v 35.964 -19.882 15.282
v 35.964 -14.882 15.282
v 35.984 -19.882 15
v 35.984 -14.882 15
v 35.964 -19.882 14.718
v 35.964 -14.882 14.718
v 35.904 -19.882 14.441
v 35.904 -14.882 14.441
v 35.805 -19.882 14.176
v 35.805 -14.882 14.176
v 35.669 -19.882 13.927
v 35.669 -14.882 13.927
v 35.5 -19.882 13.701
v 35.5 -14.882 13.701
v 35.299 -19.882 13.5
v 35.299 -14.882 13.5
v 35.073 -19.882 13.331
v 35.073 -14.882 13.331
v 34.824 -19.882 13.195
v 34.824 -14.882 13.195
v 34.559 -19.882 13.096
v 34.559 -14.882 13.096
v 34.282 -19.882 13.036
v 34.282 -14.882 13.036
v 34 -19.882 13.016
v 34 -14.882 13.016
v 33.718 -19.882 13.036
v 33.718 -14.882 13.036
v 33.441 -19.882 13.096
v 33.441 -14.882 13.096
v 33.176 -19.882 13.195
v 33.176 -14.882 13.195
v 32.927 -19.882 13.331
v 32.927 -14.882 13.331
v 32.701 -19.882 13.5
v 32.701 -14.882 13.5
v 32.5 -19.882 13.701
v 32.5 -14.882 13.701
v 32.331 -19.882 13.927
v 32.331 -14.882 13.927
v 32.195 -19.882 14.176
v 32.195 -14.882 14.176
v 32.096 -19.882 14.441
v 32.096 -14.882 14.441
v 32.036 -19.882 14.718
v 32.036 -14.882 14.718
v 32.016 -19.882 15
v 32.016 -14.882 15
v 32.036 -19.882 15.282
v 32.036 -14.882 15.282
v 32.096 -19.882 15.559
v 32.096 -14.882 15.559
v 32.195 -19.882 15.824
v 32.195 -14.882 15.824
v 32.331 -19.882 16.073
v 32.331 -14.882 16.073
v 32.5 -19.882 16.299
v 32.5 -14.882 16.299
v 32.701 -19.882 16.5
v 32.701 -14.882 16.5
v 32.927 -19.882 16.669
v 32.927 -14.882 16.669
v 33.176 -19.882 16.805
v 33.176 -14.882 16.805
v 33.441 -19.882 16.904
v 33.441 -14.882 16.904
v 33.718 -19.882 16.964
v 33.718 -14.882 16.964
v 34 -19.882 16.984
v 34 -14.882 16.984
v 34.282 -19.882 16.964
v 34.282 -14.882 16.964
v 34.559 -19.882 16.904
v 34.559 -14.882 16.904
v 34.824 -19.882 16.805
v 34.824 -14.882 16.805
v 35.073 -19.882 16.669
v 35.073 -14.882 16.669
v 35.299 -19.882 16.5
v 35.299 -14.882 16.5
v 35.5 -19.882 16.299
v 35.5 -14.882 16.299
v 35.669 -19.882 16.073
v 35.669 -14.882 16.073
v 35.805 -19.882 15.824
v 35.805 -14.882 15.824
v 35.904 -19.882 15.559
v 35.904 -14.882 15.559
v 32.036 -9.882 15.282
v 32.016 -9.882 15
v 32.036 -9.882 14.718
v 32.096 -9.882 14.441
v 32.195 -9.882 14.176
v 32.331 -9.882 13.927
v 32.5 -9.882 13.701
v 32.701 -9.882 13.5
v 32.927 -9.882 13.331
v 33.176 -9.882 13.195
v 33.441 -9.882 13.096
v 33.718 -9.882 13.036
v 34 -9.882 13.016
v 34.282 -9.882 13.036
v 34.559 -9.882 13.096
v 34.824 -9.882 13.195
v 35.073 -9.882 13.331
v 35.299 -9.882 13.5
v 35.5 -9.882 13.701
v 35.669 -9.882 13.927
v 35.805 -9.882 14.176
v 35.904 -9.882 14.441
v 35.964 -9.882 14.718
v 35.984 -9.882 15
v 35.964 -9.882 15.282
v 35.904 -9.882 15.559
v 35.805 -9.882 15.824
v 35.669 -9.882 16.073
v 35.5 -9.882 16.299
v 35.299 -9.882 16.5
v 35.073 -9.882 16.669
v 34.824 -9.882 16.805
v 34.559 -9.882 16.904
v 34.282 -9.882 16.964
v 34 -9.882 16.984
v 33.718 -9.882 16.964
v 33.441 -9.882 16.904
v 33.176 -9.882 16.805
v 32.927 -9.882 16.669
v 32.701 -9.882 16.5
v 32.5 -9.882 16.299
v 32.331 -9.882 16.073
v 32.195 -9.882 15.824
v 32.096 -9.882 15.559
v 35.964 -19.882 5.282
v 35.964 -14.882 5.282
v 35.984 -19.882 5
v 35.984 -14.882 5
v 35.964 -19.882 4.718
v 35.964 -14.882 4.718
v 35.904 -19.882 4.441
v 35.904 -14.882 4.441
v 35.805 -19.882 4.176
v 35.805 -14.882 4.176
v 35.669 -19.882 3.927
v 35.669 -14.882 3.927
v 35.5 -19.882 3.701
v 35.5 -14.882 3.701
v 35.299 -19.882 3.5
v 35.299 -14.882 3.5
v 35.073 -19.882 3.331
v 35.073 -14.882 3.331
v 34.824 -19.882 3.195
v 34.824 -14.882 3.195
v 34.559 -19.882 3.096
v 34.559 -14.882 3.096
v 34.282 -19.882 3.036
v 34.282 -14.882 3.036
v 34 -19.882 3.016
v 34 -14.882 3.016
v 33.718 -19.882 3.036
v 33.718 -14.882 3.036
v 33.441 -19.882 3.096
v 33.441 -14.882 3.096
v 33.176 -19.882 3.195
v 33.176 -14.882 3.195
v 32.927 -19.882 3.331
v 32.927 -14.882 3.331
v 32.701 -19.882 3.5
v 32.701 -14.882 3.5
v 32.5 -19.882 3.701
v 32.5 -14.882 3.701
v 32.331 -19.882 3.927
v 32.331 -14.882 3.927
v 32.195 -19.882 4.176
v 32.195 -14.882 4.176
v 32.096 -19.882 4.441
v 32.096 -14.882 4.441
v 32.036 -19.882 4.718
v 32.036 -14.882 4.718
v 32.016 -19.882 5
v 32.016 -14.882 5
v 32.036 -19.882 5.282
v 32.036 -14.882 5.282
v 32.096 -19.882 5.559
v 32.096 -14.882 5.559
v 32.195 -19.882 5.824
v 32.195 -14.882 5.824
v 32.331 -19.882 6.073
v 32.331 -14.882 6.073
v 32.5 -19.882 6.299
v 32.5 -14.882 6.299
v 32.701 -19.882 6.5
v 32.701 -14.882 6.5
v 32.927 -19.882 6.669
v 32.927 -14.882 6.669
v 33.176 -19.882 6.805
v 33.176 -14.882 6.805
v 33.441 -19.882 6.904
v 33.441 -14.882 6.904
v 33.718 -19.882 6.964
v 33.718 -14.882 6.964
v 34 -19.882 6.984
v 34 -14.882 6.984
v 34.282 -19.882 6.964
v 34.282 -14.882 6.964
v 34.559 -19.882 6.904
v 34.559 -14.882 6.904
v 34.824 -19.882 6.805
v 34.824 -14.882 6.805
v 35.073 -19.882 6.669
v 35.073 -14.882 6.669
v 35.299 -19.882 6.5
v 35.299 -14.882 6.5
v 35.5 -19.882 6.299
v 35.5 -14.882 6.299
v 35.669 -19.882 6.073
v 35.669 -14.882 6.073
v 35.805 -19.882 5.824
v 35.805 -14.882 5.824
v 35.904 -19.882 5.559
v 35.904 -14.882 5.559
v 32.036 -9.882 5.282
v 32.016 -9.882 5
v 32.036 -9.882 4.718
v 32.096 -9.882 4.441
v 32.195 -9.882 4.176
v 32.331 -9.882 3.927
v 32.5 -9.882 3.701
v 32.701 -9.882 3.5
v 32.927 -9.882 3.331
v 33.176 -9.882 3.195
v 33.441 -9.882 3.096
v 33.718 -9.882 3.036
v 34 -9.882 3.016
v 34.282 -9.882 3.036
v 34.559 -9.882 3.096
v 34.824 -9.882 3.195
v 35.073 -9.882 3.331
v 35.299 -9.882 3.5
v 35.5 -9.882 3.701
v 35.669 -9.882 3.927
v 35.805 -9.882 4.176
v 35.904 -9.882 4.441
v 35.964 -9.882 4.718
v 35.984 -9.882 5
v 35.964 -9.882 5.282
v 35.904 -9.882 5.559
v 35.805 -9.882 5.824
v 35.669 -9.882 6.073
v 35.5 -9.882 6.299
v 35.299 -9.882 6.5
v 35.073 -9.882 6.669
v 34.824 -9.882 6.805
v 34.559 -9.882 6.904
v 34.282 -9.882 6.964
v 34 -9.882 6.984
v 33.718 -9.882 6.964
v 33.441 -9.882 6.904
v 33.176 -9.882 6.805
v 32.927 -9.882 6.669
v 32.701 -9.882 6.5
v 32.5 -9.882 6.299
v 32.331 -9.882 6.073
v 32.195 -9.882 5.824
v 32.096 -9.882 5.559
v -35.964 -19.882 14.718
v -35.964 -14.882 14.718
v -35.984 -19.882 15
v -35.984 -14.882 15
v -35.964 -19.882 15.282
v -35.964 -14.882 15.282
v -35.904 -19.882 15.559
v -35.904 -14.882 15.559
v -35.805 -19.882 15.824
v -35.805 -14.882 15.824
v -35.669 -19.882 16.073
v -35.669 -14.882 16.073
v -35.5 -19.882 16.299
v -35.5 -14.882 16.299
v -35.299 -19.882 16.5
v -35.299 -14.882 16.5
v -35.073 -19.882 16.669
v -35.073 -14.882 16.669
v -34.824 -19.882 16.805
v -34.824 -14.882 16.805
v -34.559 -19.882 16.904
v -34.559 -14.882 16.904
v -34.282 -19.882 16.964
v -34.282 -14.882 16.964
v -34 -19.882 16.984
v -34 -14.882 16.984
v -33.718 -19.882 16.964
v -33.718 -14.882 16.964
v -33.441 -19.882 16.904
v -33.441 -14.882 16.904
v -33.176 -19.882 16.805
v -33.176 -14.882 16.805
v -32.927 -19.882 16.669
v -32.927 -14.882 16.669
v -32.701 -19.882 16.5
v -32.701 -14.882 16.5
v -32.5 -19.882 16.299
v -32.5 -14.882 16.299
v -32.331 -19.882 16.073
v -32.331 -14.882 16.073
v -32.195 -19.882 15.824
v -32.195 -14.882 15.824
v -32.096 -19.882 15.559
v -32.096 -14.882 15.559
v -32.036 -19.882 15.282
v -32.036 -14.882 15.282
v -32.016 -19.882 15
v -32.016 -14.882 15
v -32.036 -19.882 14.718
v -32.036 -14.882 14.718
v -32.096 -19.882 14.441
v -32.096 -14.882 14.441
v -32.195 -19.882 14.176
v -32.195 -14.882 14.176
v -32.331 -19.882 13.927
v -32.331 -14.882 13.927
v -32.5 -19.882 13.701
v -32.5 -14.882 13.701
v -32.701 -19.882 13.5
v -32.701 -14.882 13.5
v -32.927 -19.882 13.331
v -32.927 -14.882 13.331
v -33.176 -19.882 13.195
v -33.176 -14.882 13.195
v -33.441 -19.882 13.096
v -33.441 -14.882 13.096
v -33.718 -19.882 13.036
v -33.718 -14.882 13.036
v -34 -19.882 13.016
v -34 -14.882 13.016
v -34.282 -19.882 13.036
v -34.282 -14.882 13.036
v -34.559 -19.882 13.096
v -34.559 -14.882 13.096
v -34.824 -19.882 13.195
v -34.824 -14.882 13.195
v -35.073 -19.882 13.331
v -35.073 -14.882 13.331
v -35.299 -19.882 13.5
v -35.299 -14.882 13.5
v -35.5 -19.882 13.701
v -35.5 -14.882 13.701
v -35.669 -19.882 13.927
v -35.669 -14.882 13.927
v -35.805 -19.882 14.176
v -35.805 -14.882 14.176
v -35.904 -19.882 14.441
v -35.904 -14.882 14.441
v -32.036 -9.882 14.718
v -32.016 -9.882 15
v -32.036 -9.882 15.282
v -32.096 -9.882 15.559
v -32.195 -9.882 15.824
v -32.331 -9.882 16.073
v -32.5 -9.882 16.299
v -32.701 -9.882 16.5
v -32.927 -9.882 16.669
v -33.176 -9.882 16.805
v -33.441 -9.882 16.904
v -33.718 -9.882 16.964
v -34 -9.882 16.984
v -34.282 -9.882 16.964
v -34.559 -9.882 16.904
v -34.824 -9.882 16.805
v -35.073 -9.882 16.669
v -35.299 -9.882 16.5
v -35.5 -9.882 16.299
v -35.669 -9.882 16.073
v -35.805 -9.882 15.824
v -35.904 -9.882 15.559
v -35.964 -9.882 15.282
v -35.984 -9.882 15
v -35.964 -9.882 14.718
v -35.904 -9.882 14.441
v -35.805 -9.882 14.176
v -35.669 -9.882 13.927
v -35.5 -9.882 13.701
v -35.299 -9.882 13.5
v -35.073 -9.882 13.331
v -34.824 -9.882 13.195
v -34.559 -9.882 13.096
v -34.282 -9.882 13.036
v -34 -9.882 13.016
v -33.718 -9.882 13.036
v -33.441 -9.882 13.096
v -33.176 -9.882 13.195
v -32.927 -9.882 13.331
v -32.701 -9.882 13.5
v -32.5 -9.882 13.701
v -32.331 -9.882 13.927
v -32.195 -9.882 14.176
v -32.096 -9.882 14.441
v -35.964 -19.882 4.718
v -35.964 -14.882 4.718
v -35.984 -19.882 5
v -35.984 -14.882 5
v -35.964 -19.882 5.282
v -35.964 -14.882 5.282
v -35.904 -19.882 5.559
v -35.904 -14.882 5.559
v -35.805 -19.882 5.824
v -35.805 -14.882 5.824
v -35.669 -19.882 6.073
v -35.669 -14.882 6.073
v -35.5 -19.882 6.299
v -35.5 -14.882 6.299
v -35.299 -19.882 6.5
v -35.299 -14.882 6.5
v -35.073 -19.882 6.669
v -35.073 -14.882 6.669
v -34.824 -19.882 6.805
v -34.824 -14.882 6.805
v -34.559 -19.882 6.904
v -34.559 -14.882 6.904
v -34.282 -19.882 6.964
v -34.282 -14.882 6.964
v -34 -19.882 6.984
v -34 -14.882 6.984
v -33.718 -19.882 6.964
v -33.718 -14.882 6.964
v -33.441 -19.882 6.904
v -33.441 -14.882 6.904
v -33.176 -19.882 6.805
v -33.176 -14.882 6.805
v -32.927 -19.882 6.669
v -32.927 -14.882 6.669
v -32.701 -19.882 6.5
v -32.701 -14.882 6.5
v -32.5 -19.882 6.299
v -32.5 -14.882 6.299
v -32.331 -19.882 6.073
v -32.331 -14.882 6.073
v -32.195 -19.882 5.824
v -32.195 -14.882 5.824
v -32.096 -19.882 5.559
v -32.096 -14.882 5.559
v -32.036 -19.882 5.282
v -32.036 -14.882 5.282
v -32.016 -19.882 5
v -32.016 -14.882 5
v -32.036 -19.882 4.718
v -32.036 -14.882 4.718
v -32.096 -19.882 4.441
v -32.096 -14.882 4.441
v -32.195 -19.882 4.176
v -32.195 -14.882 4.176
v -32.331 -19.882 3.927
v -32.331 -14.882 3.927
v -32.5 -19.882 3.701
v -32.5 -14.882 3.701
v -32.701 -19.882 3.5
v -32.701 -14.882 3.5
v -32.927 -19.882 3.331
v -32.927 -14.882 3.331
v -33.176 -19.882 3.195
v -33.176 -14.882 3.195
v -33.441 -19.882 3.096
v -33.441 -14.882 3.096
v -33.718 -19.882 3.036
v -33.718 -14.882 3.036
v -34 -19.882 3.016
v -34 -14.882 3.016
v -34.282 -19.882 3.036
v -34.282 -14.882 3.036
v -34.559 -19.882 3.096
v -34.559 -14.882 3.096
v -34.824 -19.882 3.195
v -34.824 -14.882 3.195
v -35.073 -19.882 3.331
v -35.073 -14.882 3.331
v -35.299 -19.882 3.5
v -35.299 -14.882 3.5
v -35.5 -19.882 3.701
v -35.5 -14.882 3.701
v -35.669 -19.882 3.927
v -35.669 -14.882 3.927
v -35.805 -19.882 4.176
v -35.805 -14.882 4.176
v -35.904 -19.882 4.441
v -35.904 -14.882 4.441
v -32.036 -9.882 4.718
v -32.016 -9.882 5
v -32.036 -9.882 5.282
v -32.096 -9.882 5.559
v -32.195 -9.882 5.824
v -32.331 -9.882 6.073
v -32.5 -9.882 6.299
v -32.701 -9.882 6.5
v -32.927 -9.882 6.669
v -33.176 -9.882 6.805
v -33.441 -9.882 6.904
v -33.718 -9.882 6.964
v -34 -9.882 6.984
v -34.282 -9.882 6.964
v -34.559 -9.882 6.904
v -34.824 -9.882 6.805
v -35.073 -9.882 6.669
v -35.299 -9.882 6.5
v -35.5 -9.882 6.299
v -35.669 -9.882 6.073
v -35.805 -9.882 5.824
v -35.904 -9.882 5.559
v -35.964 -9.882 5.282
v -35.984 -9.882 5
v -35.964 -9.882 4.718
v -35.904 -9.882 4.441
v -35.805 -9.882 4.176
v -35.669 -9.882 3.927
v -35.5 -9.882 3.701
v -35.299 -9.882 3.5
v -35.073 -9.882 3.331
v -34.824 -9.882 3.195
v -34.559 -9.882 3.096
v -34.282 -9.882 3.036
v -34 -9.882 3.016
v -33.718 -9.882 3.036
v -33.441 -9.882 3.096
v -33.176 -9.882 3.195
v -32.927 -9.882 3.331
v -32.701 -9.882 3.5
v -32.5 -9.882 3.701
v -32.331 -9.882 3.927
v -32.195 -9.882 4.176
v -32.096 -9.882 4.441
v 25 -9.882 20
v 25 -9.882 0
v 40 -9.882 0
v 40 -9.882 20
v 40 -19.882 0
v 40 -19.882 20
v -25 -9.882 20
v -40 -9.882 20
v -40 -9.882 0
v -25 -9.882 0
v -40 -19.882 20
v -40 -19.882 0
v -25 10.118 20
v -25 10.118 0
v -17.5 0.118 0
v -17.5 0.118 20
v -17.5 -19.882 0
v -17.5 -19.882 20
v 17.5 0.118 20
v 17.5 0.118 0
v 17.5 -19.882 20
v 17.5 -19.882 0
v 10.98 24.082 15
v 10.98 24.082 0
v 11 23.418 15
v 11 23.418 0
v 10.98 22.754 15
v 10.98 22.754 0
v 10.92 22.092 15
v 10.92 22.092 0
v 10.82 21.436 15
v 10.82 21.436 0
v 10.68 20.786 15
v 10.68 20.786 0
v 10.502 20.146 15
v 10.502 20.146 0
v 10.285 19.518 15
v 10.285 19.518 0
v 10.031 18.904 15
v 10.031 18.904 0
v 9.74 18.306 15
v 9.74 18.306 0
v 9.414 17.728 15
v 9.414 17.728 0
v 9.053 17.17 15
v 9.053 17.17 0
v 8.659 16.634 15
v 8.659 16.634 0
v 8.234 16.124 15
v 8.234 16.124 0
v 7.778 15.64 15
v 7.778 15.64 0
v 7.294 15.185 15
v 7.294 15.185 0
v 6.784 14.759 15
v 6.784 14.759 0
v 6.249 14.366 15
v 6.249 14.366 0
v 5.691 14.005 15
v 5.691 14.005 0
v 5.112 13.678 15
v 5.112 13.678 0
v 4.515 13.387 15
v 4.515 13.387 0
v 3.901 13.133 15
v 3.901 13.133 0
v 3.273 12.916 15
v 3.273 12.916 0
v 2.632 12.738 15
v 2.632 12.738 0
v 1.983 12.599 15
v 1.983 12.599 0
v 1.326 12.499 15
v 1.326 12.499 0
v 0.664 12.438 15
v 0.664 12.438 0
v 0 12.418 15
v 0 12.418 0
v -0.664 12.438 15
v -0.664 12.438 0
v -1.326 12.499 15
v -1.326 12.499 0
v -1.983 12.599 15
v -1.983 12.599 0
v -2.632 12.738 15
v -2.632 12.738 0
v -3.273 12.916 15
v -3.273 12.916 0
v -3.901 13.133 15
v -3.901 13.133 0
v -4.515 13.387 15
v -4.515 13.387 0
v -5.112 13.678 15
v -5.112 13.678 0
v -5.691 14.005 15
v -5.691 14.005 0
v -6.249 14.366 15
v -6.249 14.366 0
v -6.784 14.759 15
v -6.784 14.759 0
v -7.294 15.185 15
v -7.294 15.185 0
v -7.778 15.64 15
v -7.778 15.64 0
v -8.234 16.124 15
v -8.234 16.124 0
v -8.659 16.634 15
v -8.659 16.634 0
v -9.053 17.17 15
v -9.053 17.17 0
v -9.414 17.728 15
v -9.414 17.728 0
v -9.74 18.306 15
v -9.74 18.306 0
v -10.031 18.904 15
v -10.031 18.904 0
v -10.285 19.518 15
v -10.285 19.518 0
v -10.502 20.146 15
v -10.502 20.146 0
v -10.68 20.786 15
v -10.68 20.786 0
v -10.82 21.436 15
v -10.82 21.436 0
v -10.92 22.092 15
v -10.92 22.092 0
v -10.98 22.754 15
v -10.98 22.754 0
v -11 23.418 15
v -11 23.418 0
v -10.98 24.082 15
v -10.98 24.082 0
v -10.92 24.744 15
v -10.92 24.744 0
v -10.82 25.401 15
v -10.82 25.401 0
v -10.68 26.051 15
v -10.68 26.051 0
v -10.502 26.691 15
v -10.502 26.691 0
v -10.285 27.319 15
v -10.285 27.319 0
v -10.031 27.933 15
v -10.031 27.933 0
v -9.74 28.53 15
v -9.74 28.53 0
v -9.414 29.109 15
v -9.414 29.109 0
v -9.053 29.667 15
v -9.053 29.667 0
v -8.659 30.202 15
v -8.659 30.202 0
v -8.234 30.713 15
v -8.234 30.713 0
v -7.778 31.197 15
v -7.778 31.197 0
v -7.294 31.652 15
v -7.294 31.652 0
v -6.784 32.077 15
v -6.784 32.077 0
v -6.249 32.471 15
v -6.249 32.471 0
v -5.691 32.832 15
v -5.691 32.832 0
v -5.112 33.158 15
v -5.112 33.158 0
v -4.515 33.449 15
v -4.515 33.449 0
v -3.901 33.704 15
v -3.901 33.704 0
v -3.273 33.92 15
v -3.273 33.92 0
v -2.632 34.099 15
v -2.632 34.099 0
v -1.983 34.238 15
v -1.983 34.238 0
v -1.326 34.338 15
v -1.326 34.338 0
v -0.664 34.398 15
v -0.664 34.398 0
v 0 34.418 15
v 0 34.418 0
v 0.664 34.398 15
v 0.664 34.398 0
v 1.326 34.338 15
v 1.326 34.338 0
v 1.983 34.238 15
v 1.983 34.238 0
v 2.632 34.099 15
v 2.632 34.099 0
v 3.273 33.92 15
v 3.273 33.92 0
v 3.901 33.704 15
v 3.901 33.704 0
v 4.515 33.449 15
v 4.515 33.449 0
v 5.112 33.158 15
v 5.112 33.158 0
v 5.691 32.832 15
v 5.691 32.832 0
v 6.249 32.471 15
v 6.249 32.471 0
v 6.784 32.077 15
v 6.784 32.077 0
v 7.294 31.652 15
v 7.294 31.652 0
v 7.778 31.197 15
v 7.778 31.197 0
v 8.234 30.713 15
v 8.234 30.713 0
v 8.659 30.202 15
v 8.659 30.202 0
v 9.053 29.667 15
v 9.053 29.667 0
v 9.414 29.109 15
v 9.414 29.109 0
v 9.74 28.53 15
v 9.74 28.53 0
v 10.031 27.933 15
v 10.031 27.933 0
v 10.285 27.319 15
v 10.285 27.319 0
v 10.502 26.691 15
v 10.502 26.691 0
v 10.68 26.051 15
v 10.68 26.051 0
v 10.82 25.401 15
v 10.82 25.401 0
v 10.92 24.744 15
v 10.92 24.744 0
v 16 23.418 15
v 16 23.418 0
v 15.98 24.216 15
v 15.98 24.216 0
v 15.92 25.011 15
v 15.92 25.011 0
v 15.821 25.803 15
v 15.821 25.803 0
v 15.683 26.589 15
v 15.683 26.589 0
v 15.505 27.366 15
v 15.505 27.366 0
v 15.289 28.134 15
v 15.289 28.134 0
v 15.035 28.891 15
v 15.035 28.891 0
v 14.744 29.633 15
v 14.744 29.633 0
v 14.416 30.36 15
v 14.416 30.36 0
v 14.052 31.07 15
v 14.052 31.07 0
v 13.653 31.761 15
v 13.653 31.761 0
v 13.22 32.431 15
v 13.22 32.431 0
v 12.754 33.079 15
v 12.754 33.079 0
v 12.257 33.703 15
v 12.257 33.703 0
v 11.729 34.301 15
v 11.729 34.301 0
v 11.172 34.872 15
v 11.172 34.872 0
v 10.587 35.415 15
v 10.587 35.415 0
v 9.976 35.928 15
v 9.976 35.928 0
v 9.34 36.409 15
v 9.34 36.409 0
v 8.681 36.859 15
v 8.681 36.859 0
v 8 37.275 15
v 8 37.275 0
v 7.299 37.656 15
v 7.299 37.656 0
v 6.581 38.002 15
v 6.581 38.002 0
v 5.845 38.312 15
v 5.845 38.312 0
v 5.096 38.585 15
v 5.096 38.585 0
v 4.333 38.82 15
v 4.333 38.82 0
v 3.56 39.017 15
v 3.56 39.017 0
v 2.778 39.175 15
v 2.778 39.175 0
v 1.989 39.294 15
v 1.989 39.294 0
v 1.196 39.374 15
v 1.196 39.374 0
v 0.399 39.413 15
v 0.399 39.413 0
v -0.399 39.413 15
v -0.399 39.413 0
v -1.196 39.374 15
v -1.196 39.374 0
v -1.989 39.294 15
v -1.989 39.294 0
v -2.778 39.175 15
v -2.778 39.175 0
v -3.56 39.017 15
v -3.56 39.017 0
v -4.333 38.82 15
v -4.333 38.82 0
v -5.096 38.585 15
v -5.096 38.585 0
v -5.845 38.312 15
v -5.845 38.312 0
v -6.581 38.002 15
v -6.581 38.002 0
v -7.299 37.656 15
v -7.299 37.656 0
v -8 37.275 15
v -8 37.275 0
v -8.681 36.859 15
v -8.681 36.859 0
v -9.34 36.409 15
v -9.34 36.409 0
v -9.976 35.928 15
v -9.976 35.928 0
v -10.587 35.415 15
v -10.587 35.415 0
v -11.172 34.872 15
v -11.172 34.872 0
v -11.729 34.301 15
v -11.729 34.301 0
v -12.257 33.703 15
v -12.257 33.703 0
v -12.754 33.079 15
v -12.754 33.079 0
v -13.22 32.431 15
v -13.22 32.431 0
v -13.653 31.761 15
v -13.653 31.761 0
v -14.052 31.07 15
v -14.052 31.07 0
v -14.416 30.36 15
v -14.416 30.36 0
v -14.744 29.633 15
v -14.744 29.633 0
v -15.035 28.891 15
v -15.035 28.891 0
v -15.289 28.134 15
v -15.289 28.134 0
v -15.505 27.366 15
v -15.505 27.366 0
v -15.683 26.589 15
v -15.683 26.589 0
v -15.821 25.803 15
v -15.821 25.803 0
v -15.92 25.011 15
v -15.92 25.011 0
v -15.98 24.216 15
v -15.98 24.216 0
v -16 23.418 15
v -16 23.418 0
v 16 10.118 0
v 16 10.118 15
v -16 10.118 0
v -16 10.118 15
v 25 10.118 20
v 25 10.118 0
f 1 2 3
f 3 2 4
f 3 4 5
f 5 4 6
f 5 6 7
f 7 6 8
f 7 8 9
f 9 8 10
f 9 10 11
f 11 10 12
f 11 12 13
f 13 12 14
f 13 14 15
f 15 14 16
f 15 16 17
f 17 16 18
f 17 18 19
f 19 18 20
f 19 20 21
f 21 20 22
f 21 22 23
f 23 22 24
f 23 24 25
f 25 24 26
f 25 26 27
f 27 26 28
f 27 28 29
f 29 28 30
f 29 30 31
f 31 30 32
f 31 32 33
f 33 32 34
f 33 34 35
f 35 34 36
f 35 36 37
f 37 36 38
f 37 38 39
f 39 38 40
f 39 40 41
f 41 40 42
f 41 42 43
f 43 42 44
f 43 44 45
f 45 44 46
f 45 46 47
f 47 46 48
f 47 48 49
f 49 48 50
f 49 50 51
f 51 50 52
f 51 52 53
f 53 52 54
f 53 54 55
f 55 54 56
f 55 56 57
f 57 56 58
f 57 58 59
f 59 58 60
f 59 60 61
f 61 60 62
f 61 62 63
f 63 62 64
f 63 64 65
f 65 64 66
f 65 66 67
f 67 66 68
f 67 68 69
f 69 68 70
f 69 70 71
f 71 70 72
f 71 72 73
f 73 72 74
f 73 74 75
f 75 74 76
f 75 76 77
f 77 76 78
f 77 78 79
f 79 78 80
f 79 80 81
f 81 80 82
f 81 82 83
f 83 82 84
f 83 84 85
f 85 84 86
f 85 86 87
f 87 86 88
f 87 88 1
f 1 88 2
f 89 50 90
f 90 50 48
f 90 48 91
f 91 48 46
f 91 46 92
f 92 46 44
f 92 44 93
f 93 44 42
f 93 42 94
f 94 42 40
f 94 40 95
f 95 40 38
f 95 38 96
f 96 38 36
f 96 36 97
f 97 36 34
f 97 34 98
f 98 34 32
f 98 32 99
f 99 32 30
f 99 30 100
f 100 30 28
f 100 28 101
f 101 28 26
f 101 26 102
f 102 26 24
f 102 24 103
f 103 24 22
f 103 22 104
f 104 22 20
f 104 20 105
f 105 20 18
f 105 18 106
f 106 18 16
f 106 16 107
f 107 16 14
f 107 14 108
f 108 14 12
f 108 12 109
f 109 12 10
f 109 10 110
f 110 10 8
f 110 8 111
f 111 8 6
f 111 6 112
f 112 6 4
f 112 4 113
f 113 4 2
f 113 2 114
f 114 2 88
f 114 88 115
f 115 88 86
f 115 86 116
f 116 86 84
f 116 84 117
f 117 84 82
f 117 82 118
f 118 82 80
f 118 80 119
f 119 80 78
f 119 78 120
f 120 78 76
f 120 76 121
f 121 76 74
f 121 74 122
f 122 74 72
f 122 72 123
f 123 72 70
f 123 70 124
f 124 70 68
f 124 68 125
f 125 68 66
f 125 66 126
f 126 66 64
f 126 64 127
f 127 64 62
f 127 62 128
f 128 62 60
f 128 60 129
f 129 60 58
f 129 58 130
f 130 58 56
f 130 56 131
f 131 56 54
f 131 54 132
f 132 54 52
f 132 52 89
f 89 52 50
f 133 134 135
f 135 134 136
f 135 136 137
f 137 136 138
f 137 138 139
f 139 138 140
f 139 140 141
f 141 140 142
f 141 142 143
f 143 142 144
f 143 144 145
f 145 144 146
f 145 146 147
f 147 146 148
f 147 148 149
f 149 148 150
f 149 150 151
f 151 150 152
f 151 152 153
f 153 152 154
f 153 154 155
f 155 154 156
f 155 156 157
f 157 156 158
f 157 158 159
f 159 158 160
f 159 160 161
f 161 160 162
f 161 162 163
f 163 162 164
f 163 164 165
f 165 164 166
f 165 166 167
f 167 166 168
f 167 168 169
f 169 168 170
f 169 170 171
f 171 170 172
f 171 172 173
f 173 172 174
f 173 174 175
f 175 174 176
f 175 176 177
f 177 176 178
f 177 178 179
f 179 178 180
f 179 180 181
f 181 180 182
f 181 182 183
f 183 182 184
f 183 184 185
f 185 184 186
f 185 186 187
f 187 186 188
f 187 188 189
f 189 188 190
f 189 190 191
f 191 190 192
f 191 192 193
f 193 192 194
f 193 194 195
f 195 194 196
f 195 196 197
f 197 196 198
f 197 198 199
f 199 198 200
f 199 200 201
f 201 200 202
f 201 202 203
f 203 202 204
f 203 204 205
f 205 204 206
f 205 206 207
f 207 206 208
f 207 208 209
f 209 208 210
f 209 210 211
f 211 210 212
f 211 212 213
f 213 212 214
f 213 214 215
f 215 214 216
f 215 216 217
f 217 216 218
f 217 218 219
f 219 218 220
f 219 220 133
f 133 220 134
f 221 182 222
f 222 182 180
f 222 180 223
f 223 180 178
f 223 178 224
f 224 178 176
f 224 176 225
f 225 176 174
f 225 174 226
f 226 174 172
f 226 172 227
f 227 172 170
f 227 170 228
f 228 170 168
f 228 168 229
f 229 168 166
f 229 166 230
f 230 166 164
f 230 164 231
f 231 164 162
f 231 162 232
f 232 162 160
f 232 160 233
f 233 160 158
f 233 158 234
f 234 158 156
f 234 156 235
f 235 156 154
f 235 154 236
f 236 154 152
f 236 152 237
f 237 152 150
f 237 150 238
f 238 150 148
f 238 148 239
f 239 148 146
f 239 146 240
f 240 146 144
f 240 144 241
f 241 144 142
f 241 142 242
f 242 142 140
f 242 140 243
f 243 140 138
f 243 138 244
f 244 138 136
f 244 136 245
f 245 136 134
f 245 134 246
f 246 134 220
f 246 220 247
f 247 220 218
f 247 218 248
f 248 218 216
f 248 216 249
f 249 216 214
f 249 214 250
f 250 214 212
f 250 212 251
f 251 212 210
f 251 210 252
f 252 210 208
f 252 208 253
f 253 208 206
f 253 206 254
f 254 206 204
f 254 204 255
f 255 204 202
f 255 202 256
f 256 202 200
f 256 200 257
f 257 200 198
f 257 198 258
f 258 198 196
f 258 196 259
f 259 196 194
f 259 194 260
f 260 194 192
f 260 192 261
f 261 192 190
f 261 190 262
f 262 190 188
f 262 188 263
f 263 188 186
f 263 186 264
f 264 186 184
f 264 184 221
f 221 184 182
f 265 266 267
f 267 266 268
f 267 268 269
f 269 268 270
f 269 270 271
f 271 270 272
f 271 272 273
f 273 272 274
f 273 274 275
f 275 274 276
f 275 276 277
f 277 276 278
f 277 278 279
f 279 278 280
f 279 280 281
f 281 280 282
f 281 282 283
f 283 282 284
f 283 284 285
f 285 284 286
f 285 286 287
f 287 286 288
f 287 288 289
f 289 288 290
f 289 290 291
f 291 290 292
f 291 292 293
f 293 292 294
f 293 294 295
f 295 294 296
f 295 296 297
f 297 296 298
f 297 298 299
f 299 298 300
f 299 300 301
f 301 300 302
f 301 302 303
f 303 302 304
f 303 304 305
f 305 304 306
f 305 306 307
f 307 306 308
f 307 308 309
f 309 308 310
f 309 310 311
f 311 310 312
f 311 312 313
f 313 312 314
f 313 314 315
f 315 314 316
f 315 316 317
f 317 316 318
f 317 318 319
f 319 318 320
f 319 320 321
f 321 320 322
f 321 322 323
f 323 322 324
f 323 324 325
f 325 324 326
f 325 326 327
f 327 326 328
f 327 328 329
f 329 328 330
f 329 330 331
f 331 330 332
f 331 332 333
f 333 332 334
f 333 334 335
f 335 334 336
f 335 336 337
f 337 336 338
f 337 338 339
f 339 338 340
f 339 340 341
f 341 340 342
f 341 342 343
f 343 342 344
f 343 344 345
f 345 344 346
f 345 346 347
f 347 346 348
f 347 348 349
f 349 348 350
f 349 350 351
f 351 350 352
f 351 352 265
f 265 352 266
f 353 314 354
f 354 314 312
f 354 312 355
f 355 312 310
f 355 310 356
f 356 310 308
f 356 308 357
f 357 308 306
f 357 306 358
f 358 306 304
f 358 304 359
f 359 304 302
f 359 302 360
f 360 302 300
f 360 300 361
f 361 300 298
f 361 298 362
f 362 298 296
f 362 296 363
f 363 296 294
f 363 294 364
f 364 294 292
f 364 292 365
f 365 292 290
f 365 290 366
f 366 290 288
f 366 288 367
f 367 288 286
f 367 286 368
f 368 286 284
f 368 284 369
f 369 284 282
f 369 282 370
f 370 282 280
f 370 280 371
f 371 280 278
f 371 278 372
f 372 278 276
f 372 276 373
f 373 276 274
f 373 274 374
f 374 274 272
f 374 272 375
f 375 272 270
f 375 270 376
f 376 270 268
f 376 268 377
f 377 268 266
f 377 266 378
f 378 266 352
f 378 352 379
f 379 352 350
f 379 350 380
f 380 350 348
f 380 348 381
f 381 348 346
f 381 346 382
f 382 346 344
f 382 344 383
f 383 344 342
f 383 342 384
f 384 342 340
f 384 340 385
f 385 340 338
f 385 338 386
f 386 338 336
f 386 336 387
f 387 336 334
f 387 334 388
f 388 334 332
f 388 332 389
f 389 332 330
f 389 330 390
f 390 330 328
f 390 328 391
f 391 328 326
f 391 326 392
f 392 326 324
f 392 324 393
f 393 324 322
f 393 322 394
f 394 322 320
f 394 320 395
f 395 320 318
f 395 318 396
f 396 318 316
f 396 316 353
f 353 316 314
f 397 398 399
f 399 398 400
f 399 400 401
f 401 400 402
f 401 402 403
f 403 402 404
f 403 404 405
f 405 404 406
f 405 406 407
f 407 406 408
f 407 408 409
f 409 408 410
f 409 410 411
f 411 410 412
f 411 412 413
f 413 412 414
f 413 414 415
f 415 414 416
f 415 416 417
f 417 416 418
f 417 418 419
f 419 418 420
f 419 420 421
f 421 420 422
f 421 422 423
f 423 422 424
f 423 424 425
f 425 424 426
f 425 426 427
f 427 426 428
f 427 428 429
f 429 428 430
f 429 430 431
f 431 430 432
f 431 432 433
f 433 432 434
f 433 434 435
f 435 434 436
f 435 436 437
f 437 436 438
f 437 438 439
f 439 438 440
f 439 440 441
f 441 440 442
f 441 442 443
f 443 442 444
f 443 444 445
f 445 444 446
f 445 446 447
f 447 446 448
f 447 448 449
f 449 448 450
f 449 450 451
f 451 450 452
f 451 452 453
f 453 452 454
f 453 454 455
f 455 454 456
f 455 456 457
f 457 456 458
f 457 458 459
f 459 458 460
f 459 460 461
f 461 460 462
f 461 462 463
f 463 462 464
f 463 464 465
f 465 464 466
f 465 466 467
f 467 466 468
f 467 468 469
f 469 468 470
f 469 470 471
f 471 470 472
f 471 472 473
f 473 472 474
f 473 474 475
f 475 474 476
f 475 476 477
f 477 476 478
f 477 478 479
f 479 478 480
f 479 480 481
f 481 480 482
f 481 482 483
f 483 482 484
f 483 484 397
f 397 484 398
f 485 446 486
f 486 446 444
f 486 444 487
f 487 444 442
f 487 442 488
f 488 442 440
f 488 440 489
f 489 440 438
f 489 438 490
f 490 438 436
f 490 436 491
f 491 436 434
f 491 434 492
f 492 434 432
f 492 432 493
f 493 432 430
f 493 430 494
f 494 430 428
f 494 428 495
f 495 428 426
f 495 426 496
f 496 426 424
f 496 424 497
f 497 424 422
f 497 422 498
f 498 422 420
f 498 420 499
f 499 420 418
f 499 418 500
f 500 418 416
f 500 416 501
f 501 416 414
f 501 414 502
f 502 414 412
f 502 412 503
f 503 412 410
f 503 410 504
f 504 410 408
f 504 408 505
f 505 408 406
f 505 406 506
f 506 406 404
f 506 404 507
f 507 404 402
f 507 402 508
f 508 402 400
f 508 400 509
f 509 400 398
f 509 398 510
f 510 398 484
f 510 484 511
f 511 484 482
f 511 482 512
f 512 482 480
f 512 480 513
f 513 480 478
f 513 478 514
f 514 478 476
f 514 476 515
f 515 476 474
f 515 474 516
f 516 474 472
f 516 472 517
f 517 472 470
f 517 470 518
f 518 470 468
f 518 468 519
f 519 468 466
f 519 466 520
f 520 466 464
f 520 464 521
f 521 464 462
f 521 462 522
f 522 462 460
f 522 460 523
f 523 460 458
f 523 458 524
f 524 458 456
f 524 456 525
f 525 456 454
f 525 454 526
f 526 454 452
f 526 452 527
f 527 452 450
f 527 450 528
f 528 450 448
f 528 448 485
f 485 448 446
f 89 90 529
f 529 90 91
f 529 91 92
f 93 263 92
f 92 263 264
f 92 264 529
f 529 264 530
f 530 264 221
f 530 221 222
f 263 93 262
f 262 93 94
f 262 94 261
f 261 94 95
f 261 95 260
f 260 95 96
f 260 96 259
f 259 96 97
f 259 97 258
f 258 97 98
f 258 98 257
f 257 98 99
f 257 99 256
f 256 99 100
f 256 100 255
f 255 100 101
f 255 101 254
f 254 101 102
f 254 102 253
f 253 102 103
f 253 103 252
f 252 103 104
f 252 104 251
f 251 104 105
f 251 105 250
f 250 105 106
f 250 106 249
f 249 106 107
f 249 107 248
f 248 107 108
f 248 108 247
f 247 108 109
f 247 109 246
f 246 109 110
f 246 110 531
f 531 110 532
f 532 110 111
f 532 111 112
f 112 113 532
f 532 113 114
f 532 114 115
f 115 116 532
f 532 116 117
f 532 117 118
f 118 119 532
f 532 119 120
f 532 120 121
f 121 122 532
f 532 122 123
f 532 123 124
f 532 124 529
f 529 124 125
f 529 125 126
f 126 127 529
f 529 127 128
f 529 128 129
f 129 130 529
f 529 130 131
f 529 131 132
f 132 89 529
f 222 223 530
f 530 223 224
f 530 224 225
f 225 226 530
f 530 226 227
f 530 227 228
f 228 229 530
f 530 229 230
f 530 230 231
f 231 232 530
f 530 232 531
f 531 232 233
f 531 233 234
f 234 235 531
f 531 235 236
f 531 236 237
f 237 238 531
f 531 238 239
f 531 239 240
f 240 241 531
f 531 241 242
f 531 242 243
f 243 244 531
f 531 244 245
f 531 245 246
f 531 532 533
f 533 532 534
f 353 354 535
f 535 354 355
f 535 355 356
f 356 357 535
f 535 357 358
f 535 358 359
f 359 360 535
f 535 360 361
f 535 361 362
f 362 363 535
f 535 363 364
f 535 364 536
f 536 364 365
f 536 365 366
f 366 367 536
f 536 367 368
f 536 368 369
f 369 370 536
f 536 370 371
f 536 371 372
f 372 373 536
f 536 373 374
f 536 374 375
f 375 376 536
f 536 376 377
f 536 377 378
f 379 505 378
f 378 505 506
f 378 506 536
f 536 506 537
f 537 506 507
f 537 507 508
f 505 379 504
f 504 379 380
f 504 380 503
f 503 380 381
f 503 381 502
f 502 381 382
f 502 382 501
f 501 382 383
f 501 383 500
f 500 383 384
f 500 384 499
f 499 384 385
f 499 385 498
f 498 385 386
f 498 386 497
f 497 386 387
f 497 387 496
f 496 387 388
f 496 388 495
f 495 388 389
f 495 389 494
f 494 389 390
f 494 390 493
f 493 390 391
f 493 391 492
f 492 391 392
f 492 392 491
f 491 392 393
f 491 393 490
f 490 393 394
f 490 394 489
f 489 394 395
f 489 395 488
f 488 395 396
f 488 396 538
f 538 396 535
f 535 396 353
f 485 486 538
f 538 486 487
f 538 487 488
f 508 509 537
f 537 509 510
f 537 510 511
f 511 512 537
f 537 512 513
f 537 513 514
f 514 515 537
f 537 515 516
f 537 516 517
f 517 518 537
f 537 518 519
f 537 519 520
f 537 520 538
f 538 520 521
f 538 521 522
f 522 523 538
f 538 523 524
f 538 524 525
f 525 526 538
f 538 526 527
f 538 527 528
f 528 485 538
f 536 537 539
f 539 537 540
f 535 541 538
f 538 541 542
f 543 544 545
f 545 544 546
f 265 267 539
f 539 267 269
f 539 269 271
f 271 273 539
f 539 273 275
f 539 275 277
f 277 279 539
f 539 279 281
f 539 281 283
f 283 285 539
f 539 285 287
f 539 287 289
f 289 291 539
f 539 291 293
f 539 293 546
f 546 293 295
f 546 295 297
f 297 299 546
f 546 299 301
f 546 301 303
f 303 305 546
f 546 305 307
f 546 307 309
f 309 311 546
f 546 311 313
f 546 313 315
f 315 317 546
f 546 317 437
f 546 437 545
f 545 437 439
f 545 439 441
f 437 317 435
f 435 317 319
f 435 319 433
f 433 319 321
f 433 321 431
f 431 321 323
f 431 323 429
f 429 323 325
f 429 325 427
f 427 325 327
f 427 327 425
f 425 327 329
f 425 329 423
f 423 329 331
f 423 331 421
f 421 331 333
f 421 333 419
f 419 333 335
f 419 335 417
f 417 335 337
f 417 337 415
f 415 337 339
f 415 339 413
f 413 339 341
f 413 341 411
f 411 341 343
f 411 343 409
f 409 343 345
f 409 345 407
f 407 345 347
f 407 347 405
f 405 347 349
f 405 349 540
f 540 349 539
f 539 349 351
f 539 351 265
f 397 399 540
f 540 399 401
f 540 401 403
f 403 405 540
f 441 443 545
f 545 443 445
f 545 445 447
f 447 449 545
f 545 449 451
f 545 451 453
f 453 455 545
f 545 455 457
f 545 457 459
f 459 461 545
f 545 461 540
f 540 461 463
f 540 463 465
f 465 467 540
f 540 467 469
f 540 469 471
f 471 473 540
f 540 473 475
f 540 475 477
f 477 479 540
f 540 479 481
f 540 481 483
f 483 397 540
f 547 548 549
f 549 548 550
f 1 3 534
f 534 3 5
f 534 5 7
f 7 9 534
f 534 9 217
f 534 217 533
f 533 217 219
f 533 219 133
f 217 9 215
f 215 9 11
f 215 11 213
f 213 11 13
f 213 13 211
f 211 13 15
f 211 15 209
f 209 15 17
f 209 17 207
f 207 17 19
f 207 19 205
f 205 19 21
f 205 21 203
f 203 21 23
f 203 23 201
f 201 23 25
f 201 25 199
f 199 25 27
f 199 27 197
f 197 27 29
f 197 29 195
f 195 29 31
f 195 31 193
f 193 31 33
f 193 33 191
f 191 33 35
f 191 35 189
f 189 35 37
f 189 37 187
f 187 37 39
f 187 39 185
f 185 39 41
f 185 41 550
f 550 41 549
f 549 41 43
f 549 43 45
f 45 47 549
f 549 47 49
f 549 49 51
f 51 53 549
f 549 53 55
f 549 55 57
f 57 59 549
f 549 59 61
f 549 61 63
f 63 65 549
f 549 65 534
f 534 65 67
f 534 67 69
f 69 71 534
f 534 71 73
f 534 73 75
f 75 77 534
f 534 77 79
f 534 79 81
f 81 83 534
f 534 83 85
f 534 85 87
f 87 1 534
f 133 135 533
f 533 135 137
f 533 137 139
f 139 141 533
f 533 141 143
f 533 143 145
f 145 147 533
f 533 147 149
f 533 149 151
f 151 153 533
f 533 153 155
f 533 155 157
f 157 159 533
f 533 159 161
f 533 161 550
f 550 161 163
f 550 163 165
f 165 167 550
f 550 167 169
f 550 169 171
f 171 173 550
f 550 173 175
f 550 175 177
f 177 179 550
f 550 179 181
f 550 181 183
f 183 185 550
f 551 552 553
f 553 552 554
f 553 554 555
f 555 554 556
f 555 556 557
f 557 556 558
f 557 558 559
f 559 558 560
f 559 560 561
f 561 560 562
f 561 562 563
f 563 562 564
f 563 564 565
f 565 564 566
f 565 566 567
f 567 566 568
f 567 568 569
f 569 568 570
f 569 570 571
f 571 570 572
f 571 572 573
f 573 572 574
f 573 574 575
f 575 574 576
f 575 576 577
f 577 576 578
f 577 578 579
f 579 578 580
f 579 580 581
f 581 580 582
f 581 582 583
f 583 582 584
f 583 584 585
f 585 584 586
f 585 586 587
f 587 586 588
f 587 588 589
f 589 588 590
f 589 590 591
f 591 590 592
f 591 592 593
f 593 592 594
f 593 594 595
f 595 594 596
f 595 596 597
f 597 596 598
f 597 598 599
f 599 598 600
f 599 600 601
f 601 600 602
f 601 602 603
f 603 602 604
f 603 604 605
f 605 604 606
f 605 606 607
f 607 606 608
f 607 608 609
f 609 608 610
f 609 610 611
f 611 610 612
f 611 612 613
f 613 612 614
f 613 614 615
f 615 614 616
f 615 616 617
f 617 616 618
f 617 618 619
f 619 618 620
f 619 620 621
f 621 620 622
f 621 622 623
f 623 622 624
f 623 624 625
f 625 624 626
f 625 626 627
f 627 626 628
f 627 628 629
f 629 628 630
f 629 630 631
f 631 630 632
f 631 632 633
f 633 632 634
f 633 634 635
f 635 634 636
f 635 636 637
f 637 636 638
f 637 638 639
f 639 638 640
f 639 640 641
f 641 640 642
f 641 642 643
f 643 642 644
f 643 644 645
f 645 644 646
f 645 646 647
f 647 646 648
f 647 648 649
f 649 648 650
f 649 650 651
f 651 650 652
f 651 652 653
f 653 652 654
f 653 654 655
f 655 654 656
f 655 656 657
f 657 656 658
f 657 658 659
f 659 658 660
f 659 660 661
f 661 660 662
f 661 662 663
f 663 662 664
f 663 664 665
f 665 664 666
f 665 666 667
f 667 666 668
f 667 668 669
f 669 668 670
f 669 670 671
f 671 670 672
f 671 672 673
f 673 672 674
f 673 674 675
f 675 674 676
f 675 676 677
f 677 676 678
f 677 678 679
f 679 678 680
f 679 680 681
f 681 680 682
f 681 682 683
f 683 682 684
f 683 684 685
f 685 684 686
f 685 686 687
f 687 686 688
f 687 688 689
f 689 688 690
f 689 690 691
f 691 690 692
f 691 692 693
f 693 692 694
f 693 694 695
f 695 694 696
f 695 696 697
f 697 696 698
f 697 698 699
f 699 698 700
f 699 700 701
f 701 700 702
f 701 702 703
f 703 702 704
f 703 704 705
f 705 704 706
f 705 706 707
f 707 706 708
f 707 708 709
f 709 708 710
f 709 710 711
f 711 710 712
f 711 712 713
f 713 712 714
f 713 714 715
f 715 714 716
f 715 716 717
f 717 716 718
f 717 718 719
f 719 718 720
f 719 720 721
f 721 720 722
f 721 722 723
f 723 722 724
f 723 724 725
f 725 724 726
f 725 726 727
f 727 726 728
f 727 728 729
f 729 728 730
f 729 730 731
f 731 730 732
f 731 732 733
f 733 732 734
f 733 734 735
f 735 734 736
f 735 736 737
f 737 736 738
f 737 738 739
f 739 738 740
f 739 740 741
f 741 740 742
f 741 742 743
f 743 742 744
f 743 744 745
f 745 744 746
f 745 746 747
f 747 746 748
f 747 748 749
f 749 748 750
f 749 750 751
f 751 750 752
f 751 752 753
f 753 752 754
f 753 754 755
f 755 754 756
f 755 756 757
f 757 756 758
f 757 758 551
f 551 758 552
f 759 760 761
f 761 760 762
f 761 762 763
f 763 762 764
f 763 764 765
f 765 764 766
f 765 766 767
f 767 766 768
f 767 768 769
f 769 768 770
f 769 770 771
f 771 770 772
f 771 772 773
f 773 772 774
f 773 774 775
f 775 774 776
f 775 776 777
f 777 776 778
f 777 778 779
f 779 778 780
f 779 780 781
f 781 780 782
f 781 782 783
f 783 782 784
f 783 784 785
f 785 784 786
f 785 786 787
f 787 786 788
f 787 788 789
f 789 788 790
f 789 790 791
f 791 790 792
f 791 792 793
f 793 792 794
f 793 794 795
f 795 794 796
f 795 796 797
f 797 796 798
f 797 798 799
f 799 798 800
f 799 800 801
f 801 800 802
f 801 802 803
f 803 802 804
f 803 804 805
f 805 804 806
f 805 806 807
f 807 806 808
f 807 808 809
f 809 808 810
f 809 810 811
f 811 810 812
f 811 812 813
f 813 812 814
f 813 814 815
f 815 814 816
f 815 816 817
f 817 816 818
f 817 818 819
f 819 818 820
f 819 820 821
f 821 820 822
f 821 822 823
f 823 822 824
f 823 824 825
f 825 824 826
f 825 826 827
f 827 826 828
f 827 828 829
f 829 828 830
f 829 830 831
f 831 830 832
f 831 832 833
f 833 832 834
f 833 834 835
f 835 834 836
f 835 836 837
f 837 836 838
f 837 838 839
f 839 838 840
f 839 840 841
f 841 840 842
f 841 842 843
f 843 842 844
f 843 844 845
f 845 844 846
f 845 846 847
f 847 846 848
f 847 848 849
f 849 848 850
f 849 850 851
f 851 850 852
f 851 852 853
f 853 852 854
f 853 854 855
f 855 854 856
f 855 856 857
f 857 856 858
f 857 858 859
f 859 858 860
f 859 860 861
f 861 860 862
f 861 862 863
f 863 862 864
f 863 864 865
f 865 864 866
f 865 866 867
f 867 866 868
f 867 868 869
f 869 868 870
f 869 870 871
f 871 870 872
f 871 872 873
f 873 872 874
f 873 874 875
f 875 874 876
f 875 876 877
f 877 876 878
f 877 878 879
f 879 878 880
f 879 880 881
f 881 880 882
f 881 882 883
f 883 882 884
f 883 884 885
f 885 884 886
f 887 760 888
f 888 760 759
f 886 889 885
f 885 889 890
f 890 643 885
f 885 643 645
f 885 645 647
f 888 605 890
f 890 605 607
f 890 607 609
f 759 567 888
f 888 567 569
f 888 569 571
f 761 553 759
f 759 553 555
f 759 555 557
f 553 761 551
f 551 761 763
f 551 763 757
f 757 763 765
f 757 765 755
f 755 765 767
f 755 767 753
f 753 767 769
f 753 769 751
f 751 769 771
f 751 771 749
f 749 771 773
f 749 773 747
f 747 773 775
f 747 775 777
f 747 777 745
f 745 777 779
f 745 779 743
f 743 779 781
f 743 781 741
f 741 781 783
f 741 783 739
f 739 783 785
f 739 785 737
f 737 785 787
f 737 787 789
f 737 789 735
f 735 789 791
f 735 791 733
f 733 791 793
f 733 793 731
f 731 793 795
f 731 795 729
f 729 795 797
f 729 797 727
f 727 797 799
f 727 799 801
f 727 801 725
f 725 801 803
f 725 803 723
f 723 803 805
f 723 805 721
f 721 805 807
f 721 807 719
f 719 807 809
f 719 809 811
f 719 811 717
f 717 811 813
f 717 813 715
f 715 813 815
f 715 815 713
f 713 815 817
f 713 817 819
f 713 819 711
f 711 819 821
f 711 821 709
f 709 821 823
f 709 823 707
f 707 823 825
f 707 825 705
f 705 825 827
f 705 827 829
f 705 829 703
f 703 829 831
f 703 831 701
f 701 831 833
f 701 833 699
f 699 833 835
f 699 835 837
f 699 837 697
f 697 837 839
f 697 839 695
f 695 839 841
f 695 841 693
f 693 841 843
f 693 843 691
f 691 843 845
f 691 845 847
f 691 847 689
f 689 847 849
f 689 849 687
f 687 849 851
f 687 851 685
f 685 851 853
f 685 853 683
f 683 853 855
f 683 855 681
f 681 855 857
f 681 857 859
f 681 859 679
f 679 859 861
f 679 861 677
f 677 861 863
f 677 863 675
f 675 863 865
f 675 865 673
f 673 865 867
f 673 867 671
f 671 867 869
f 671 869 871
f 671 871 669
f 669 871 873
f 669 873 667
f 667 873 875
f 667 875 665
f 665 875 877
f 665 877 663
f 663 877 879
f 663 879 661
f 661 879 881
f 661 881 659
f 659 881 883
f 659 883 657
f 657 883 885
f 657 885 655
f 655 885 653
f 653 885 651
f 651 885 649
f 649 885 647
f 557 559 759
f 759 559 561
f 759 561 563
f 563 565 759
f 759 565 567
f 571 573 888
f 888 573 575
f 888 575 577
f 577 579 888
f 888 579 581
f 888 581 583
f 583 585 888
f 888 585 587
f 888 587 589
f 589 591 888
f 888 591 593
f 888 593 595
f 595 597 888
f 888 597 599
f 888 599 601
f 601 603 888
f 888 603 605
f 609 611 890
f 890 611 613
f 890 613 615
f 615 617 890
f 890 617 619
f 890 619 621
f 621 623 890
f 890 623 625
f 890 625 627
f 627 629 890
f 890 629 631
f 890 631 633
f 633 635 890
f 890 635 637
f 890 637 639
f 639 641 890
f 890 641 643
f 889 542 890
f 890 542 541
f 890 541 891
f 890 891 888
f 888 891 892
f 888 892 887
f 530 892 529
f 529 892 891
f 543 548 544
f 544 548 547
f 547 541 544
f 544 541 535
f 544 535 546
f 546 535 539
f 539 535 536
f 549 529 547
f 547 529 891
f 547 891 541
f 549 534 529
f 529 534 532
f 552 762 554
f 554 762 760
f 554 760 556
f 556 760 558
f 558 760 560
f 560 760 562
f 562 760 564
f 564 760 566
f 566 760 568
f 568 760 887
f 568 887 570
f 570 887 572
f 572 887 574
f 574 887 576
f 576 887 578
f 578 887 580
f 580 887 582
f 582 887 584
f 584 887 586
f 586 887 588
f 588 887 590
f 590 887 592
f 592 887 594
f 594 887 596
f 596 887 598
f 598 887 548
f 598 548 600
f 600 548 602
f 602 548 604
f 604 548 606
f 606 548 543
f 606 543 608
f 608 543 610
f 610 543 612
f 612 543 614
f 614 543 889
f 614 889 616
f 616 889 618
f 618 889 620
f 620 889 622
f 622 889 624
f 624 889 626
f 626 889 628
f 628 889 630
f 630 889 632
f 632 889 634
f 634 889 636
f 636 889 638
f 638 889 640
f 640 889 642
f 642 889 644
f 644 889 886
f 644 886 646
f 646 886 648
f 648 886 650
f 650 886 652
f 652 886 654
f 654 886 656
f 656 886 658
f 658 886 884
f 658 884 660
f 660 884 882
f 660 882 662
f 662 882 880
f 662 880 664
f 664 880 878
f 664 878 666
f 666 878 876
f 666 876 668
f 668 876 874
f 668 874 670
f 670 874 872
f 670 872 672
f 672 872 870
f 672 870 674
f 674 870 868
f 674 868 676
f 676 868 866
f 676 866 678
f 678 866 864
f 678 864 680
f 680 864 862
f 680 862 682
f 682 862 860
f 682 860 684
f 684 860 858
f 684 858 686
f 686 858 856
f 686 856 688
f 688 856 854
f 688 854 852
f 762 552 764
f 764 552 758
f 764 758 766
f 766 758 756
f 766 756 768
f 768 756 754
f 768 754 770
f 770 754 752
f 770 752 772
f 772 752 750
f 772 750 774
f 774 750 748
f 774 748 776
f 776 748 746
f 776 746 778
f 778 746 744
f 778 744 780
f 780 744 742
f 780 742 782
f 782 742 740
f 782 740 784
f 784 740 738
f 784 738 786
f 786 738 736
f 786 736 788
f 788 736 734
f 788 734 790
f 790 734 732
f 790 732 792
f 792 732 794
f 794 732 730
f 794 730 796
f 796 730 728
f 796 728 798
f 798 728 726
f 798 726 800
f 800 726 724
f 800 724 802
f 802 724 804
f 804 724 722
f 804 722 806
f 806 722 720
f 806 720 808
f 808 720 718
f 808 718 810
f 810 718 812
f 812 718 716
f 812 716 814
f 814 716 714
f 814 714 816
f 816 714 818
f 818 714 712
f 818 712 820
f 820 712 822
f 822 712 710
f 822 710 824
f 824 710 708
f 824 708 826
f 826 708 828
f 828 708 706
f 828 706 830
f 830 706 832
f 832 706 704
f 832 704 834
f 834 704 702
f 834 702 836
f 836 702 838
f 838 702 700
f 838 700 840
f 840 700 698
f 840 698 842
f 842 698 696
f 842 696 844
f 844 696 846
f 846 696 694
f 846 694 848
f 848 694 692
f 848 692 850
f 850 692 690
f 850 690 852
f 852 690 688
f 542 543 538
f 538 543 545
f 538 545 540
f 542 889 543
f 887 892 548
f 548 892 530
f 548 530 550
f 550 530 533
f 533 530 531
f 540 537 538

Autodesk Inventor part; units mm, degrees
ref_plane "YZ Plane" through (0, 0, 0) normal (1, 0, 0) x (0, 1, 0)
ref_plane "XZ Plane" through (0, 0, 0) normal (0, 1, 0) x (-1, 0, 0)
ref_plane "XY Plane" through (0, 0, 0) normal (0, 0, 1) x (1, 0, 0)
sketch "Boceto1" plane through (0, 0, 0) normal (0, 0, 1) x (1, 0, 0)
  circle A0 centre (0, 23.4183) radius 11
  circle A1 centre (0, 23.4183) radius 16
  line L0 (-16, 23.4183) -> (-16, -2.7)
  line L1 (16, 23.4183) -> (16, -2.7)
  line L2 (-25, 0.1183) -> (25, 0.1183)
  line L3 (25, 0.1183) -> (25, 10.1183)
  line L4 (25, 10.1183) -> (-25, 10.1183)
  line L5 (-25, 10.1183) -> (-25, 0.1183)
  point P0 (0, 0)
  point P1 (0, 0.1183)
  point P2 (-16, 10.1183)
  point P3 (16, 10.1183)
  dimension "d0" = 22
  dimension "d1" = 32
  dimension "d2" = 50
  dimension "d11" = 10
  dimension "d23" = 23.3
extrude "Extrusión1" add sketch "Boceto1" along normal blind 20 contours L4 L1 L2 L0 A1 | A1 L4 | L4 L3 L2 L1 | L0 L2 L5 L4 picked at (-1.8471, 9.5484)
extrude "Extrusión2" add sketch "Boceto1" along normal blind 15 contours A1 L4 | L1 L4 A1 | A1 L4 L0 picked at (0.442, 10.9117)
sketch "Boceto3" plane through (-25, 0.1183, 0) normal (0, -1, 0) x (1, 0, 0)
  line L0 (0, 20) -> (50, 20) projected
  line L1 (7.5, 20) -> (42.5, 20)
  line L2 (42.5, 20) -> (42.5, 0)
  line L3 (42.5, 0) -> (7.5, 0)
  line L4 (7.5, 0) -> (7.5, 20)
  line L5 (0, 0) -> (50, 0) projected
  line L6 (0, 0) -> (50, 0) projected
  line L7 (50, 0) -> (50, 20) projected
  line L8 (0, 20) -> (50, 20) projected
  line L9 (0, 0) -> (0, 20) projected
  point P0 (25, 0)
  point P1 (25, 20)
  point P2 (25, 0)
  dimension "d8" = 35
extrude "Extrusión3" add sketch "Boceto3" along normal blind 20 contours L0 L4 L5 L9 | L0 L7 L5 L2
sketch "Boceto4" plane through (-25, 10.1183, 0) normal (-1, 0, 0) x (0, 0, 1)
  line L0 (0, -10.1183) -> (0, -30) projected
  line L1 (0, -30) -> (20, -30) projected
  line L2 (0, -20) -> (20, -20)
  line L3 (20, -20) -> (20, -30)
  line L4 (20, -30) -> (0, -30)
  line L5 (0, -30) -> (0, -20)
  dimension "d12" = 10
extrude "Extrusión4" add sketch "Boceto4" along normal blind 15
mirror "Simetría1" about plane through (0, 0, 0) normal (1, 0, 0) of "Extrusión4"
sketch "Boceto5" plane through (-25, -9.8817, 20) normal (0, 1, 0) x (1, 0, 0)
  circle A0 centre (-9, 15) radius 1.9844
  circle A1 centre (-9, 5) radius 1.9844
  line L0 (0, 20) -> (-15, 20) projected
  line L1 (0, 0) -> (-15, 0) projected
  line L2 (-15, 0) -> (-15, 20) projected
  point P0 (25, 20)
  dimension "d15" = 3.9688
  dimension "d16" = 3.9688
  dimension "d17" = 5
  dimension "d18" = 5
  dimension "d19" = 6
  dimension "d20" = 6
extrude "Extrusión5" cut sketch "Boceto5" against normal through all
mirror "Simetría2" about plane through (0, 0, 0) normal (1, 0, 0) of "Extrusión5"
properties part number "soporte_balineras"
